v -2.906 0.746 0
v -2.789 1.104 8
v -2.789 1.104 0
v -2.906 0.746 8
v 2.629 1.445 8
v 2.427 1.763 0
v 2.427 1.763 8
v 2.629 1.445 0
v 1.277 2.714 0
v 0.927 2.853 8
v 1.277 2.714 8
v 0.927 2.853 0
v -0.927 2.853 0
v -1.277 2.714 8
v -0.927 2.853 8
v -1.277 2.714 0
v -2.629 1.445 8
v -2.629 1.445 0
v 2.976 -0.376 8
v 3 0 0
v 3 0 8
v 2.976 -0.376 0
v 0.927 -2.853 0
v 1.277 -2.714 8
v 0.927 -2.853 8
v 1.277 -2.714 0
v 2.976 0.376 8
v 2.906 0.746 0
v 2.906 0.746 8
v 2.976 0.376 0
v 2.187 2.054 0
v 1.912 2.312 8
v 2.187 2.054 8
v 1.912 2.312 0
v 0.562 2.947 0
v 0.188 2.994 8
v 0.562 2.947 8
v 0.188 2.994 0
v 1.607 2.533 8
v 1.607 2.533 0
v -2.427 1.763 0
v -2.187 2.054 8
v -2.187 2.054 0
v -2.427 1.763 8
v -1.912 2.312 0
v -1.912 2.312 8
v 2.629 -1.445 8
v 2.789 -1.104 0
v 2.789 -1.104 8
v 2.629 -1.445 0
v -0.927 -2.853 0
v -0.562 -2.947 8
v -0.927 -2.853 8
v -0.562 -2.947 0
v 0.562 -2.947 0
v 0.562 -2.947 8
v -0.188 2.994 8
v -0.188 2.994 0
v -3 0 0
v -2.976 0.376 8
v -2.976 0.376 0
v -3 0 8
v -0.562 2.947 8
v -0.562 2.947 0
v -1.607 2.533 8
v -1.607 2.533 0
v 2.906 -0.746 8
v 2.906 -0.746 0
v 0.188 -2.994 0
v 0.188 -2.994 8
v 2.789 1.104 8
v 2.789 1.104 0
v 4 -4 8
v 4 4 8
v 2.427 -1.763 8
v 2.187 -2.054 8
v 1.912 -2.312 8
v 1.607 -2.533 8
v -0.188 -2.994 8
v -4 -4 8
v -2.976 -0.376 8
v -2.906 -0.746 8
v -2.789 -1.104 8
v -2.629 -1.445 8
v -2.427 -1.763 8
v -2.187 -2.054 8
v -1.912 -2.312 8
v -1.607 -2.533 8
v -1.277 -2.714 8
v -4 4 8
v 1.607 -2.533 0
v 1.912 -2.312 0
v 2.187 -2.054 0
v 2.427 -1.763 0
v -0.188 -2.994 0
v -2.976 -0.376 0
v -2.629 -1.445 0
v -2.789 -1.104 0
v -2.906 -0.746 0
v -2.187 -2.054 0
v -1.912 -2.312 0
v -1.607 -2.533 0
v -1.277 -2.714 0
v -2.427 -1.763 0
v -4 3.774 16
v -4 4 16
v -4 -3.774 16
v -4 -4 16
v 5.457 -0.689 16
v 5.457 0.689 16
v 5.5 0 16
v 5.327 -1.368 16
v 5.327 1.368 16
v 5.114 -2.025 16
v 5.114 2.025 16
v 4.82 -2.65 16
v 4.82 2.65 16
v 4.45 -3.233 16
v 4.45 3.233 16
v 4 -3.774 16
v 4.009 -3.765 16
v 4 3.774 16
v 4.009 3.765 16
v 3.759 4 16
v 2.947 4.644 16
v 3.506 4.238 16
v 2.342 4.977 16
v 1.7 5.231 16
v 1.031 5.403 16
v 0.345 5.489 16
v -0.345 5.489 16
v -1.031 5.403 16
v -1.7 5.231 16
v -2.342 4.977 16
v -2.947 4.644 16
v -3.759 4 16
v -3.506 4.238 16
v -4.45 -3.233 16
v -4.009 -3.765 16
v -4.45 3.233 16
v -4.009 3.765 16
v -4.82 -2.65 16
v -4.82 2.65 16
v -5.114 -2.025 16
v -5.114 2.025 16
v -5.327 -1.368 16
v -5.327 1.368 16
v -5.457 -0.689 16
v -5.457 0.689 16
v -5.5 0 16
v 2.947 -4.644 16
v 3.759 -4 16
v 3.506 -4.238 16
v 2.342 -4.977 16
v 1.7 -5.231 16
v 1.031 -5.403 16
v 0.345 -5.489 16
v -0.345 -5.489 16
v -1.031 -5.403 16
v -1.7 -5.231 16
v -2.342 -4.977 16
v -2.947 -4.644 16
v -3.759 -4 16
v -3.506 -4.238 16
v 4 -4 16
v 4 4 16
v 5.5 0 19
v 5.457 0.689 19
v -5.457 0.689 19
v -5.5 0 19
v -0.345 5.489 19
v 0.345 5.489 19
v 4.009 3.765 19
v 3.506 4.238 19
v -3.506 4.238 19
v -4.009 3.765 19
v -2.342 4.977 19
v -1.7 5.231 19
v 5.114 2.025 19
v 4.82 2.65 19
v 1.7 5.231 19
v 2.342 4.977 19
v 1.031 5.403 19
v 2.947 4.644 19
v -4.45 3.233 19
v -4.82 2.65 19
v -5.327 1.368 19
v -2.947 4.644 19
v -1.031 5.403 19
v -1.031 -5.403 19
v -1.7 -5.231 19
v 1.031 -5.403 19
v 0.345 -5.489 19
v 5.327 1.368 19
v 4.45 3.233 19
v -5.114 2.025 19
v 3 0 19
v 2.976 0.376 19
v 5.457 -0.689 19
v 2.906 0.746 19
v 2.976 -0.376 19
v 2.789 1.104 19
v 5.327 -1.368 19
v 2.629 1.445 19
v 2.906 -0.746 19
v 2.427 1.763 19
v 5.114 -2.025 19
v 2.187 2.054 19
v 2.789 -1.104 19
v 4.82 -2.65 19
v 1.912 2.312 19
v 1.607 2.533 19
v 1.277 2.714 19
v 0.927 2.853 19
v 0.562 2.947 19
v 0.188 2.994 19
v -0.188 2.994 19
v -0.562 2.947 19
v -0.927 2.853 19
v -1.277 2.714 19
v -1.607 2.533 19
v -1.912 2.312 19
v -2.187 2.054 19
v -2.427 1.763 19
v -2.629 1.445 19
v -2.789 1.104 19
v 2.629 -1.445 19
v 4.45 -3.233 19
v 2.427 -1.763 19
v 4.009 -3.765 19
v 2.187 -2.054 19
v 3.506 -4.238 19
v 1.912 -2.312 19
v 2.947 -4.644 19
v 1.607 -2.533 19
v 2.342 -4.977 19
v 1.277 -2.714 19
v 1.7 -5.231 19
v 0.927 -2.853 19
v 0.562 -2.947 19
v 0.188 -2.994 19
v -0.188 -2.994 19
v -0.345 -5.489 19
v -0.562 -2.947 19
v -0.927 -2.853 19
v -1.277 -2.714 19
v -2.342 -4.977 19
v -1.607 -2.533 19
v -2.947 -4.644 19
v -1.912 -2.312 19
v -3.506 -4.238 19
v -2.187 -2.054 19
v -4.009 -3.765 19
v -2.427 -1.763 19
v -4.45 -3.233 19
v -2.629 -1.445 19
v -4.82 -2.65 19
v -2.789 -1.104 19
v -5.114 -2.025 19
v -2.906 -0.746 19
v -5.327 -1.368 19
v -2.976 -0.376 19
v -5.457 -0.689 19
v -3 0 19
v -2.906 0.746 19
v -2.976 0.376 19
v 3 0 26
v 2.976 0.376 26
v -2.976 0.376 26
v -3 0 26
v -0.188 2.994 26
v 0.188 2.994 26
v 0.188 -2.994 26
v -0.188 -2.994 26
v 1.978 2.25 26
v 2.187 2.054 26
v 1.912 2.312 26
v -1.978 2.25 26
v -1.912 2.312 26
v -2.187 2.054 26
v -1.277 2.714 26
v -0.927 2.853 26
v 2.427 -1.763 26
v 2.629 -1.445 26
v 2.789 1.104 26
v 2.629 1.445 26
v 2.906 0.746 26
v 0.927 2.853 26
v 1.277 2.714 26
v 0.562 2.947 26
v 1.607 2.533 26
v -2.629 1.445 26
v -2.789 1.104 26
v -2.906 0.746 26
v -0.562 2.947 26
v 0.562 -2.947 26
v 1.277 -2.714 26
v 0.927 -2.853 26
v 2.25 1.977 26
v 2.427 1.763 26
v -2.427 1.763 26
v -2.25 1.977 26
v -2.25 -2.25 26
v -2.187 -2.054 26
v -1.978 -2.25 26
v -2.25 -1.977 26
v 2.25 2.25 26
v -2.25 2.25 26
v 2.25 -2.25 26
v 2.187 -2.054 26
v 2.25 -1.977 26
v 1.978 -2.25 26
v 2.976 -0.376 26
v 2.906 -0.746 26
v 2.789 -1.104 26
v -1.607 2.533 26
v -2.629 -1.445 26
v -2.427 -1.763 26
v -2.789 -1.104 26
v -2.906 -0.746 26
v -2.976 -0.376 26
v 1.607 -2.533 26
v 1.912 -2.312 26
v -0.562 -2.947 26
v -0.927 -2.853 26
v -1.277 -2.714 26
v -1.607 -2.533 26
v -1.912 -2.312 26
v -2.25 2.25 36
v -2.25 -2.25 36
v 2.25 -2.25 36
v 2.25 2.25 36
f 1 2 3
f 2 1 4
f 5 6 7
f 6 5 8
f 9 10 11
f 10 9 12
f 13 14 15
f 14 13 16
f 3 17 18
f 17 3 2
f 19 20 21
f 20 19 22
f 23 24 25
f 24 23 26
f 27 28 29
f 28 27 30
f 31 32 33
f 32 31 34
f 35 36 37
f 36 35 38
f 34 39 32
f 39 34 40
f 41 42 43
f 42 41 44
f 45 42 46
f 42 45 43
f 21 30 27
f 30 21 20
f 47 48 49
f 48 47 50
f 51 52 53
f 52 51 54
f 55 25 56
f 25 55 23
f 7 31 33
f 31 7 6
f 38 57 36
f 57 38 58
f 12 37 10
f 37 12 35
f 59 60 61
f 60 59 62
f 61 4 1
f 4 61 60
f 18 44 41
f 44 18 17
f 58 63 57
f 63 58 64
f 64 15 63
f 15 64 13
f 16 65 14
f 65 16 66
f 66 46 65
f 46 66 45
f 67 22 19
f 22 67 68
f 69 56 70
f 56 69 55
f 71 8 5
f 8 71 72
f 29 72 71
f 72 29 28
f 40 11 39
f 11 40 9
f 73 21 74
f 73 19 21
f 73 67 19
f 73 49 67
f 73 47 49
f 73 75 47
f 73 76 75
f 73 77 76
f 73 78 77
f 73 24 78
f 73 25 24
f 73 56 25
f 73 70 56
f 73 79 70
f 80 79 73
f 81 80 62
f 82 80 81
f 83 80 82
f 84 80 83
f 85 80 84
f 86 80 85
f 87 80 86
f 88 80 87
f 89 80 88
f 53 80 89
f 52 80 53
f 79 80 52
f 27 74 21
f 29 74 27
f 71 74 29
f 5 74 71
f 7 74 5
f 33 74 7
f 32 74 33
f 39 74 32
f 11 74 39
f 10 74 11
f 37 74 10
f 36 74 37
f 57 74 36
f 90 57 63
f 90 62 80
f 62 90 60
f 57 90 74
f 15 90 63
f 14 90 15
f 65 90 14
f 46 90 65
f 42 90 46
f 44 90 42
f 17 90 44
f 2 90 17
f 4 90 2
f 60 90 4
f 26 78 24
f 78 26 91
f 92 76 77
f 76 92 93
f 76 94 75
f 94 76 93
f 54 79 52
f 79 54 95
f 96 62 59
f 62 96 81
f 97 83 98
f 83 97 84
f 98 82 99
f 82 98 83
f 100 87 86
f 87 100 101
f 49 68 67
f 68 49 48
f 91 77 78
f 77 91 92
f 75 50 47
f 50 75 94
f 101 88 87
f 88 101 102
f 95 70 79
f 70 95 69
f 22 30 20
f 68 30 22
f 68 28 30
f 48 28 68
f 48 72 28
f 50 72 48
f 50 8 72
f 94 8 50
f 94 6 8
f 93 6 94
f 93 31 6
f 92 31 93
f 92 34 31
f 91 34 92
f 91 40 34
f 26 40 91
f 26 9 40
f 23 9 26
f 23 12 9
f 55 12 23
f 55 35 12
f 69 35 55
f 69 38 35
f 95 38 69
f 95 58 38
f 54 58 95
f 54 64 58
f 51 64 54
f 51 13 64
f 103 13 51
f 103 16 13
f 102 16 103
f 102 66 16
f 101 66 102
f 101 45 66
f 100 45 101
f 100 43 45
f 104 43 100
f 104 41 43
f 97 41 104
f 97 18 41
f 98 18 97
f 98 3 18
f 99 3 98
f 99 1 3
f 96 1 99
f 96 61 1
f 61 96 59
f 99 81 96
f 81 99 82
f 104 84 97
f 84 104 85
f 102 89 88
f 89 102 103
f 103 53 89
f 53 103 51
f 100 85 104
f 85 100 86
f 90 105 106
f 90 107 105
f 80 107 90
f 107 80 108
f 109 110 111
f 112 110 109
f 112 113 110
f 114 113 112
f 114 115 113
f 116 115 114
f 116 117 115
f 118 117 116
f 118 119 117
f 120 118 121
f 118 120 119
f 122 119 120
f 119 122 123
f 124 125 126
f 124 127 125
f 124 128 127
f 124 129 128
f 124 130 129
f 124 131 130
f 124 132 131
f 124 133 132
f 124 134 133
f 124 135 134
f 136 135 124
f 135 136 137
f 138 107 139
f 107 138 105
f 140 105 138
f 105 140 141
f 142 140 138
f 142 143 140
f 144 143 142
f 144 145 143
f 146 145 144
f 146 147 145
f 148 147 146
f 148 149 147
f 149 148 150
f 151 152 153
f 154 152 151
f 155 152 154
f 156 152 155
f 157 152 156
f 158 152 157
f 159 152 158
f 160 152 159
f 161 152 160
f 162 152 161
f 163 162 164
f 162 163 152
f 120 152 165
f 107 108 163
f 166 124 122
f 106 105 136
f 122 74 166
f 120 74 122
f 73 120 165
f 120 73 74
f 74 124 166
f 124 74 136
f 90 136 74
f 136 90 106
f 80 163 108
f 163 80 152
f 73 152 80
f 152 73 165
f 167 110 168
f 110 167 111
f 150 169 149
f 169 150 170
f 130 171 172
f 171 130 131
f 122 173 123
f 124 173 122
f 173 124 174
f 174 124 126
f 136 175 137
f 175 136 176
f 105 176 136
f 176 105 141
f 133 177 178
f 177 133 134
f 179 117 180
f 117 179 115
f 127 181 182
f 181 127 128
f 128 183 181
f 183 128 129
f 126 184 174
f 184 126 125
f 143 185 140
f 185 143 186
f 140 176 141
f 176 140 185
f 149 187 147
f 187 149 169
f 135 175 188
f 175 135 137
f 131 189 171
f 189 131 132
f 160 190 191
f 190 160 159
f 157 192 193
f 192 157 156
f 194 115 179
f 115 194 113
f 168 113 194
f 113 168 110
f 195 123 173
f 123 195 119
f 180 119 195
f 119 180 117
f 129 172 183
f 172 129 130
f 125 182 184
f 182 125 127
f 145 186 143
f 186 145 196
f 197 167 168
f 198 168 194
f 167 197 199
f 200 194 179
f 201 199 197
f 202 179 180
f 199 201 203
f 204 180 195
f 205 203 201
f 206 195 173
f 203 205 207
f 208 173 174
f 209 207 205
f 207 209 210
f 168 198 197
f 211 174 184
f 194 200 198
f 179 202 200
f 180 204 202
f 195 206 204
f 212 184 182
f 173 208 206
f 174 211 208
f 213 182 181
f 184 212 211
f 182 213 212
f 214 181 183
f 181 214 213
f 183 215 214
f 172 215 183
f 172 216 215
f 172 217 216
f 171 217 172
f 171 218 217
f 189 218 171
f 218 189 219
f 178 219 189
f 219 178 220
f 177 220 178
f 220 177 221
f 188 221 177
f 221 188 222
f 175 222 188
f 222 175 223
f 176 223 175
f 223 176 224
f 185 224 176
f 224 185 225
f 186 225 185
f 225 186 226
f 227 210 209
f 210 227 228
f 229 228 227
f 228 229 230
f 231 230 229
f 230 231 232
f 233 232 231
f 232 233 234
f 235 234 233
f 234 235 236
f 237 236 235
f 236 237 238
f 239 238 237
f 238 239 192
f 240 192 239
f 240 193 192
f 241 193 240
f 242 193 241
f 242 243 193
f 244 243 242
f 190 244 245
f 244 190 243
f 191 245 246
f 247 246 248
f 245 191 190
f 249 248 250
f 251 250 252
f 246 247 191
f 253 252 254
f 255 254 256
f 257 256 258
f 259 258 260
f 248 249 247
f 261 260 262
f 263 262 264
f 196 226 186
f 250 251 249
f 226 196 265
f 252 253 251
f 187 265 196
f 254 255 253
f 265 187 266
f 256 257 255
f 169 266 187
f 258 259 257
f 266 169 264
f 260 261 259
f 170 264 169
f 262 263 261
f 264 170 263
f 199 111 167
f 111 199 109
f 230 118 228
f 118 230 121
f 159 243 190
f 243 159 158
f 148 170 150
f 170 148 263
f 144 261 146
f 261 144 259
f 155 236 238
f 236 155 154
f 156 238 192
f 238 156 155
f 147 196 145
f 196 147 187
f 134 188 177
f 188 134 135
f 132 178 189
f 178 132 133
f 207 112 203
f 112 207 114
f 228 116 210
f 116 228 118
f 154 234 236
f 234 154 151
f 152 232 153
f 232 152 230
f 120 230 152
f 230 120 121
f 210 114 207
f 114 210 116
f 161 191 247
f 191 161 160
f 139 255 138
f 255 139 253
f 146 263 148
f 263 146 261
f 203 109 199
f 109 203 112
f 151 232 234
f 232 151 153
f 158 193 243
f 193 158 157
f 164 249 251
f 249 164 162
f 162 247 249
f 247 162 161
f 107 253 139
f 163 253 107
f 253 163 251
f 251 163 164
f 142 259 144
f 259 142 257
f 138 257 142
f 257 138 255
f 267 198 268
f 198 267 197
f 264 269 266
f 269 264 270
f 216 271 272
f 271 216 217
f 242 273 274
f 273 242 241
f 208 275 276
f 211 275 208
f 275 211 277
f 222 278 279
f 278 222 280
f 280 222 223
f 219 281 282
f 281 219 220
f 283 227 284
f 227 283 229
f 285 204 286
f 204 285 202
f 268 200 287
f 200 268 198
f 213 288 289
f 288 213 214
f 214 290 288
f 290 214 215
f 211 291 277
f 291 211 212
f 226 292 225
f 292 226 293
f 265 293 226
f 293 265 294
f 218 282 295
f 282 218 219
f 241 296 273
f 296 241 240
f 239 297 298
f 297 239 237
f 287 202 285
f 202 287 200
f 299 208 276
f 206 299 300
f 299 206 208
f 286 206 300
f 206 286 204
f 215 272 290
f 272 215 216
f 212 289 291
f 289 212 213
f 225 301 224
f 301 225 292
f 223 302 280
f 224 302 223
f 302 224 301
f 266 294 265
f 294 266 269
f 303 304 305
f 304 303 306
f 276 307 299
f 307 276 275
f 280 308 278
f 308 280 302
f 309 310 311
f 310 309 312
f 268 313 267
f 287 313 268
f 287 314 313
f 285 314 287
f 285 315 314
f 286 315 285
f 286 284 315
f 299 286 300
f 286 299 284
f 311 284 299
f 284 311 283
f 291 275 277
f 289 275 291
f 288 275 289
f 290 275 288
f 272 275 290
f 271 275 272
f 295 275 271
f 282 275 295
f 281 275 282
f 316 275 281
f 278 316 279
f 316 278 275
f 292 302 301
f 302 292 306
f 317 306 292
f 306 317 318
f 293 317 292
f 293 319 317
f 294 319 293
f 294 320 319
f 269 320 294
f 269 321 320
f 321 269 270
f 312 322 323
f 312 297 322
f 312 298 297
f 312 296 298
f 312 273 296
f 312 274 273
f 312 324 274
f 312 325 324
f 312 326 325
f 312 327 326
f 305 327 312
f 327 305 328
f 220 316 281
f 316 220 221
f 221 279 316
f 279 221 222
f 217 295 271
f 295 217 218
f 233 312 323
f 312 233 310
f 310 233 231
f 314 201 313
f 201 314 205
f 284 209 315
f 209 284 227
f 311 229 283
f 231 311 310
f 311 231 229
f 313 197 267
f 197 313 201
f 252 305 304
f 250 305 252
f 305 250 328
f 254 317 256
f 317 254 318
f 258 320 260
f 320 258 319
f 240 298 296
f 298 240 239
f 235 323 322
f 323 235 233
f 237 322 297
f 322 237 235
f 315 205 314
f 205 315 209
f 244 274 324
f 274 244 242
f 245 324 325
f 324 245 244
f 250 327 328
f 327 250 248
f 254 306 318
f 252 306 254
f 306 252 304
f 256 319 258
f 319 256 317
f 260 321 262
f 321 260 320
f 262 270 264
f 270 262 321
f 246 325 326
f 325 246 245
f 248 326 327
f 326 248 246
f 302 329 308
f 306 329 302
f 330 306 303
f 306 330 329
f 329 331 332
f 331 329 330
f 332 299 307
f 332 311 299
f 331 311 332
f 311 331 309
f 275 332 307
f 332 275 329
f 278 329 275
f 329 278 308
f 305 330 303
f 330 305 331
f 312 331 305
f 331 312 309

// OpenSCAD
$fn=50;
cylinder(8,6/2,6/2);
translate([0,0,12]) cube([8,8,8], center=true);
translate([0,0,16]) cylinder(3,11/2,11/2);
translate([0,0,19]) cylinder(7,6/2,6/2);
translate([0,0,31]) cube([4.5,4.5,10], center=true);
